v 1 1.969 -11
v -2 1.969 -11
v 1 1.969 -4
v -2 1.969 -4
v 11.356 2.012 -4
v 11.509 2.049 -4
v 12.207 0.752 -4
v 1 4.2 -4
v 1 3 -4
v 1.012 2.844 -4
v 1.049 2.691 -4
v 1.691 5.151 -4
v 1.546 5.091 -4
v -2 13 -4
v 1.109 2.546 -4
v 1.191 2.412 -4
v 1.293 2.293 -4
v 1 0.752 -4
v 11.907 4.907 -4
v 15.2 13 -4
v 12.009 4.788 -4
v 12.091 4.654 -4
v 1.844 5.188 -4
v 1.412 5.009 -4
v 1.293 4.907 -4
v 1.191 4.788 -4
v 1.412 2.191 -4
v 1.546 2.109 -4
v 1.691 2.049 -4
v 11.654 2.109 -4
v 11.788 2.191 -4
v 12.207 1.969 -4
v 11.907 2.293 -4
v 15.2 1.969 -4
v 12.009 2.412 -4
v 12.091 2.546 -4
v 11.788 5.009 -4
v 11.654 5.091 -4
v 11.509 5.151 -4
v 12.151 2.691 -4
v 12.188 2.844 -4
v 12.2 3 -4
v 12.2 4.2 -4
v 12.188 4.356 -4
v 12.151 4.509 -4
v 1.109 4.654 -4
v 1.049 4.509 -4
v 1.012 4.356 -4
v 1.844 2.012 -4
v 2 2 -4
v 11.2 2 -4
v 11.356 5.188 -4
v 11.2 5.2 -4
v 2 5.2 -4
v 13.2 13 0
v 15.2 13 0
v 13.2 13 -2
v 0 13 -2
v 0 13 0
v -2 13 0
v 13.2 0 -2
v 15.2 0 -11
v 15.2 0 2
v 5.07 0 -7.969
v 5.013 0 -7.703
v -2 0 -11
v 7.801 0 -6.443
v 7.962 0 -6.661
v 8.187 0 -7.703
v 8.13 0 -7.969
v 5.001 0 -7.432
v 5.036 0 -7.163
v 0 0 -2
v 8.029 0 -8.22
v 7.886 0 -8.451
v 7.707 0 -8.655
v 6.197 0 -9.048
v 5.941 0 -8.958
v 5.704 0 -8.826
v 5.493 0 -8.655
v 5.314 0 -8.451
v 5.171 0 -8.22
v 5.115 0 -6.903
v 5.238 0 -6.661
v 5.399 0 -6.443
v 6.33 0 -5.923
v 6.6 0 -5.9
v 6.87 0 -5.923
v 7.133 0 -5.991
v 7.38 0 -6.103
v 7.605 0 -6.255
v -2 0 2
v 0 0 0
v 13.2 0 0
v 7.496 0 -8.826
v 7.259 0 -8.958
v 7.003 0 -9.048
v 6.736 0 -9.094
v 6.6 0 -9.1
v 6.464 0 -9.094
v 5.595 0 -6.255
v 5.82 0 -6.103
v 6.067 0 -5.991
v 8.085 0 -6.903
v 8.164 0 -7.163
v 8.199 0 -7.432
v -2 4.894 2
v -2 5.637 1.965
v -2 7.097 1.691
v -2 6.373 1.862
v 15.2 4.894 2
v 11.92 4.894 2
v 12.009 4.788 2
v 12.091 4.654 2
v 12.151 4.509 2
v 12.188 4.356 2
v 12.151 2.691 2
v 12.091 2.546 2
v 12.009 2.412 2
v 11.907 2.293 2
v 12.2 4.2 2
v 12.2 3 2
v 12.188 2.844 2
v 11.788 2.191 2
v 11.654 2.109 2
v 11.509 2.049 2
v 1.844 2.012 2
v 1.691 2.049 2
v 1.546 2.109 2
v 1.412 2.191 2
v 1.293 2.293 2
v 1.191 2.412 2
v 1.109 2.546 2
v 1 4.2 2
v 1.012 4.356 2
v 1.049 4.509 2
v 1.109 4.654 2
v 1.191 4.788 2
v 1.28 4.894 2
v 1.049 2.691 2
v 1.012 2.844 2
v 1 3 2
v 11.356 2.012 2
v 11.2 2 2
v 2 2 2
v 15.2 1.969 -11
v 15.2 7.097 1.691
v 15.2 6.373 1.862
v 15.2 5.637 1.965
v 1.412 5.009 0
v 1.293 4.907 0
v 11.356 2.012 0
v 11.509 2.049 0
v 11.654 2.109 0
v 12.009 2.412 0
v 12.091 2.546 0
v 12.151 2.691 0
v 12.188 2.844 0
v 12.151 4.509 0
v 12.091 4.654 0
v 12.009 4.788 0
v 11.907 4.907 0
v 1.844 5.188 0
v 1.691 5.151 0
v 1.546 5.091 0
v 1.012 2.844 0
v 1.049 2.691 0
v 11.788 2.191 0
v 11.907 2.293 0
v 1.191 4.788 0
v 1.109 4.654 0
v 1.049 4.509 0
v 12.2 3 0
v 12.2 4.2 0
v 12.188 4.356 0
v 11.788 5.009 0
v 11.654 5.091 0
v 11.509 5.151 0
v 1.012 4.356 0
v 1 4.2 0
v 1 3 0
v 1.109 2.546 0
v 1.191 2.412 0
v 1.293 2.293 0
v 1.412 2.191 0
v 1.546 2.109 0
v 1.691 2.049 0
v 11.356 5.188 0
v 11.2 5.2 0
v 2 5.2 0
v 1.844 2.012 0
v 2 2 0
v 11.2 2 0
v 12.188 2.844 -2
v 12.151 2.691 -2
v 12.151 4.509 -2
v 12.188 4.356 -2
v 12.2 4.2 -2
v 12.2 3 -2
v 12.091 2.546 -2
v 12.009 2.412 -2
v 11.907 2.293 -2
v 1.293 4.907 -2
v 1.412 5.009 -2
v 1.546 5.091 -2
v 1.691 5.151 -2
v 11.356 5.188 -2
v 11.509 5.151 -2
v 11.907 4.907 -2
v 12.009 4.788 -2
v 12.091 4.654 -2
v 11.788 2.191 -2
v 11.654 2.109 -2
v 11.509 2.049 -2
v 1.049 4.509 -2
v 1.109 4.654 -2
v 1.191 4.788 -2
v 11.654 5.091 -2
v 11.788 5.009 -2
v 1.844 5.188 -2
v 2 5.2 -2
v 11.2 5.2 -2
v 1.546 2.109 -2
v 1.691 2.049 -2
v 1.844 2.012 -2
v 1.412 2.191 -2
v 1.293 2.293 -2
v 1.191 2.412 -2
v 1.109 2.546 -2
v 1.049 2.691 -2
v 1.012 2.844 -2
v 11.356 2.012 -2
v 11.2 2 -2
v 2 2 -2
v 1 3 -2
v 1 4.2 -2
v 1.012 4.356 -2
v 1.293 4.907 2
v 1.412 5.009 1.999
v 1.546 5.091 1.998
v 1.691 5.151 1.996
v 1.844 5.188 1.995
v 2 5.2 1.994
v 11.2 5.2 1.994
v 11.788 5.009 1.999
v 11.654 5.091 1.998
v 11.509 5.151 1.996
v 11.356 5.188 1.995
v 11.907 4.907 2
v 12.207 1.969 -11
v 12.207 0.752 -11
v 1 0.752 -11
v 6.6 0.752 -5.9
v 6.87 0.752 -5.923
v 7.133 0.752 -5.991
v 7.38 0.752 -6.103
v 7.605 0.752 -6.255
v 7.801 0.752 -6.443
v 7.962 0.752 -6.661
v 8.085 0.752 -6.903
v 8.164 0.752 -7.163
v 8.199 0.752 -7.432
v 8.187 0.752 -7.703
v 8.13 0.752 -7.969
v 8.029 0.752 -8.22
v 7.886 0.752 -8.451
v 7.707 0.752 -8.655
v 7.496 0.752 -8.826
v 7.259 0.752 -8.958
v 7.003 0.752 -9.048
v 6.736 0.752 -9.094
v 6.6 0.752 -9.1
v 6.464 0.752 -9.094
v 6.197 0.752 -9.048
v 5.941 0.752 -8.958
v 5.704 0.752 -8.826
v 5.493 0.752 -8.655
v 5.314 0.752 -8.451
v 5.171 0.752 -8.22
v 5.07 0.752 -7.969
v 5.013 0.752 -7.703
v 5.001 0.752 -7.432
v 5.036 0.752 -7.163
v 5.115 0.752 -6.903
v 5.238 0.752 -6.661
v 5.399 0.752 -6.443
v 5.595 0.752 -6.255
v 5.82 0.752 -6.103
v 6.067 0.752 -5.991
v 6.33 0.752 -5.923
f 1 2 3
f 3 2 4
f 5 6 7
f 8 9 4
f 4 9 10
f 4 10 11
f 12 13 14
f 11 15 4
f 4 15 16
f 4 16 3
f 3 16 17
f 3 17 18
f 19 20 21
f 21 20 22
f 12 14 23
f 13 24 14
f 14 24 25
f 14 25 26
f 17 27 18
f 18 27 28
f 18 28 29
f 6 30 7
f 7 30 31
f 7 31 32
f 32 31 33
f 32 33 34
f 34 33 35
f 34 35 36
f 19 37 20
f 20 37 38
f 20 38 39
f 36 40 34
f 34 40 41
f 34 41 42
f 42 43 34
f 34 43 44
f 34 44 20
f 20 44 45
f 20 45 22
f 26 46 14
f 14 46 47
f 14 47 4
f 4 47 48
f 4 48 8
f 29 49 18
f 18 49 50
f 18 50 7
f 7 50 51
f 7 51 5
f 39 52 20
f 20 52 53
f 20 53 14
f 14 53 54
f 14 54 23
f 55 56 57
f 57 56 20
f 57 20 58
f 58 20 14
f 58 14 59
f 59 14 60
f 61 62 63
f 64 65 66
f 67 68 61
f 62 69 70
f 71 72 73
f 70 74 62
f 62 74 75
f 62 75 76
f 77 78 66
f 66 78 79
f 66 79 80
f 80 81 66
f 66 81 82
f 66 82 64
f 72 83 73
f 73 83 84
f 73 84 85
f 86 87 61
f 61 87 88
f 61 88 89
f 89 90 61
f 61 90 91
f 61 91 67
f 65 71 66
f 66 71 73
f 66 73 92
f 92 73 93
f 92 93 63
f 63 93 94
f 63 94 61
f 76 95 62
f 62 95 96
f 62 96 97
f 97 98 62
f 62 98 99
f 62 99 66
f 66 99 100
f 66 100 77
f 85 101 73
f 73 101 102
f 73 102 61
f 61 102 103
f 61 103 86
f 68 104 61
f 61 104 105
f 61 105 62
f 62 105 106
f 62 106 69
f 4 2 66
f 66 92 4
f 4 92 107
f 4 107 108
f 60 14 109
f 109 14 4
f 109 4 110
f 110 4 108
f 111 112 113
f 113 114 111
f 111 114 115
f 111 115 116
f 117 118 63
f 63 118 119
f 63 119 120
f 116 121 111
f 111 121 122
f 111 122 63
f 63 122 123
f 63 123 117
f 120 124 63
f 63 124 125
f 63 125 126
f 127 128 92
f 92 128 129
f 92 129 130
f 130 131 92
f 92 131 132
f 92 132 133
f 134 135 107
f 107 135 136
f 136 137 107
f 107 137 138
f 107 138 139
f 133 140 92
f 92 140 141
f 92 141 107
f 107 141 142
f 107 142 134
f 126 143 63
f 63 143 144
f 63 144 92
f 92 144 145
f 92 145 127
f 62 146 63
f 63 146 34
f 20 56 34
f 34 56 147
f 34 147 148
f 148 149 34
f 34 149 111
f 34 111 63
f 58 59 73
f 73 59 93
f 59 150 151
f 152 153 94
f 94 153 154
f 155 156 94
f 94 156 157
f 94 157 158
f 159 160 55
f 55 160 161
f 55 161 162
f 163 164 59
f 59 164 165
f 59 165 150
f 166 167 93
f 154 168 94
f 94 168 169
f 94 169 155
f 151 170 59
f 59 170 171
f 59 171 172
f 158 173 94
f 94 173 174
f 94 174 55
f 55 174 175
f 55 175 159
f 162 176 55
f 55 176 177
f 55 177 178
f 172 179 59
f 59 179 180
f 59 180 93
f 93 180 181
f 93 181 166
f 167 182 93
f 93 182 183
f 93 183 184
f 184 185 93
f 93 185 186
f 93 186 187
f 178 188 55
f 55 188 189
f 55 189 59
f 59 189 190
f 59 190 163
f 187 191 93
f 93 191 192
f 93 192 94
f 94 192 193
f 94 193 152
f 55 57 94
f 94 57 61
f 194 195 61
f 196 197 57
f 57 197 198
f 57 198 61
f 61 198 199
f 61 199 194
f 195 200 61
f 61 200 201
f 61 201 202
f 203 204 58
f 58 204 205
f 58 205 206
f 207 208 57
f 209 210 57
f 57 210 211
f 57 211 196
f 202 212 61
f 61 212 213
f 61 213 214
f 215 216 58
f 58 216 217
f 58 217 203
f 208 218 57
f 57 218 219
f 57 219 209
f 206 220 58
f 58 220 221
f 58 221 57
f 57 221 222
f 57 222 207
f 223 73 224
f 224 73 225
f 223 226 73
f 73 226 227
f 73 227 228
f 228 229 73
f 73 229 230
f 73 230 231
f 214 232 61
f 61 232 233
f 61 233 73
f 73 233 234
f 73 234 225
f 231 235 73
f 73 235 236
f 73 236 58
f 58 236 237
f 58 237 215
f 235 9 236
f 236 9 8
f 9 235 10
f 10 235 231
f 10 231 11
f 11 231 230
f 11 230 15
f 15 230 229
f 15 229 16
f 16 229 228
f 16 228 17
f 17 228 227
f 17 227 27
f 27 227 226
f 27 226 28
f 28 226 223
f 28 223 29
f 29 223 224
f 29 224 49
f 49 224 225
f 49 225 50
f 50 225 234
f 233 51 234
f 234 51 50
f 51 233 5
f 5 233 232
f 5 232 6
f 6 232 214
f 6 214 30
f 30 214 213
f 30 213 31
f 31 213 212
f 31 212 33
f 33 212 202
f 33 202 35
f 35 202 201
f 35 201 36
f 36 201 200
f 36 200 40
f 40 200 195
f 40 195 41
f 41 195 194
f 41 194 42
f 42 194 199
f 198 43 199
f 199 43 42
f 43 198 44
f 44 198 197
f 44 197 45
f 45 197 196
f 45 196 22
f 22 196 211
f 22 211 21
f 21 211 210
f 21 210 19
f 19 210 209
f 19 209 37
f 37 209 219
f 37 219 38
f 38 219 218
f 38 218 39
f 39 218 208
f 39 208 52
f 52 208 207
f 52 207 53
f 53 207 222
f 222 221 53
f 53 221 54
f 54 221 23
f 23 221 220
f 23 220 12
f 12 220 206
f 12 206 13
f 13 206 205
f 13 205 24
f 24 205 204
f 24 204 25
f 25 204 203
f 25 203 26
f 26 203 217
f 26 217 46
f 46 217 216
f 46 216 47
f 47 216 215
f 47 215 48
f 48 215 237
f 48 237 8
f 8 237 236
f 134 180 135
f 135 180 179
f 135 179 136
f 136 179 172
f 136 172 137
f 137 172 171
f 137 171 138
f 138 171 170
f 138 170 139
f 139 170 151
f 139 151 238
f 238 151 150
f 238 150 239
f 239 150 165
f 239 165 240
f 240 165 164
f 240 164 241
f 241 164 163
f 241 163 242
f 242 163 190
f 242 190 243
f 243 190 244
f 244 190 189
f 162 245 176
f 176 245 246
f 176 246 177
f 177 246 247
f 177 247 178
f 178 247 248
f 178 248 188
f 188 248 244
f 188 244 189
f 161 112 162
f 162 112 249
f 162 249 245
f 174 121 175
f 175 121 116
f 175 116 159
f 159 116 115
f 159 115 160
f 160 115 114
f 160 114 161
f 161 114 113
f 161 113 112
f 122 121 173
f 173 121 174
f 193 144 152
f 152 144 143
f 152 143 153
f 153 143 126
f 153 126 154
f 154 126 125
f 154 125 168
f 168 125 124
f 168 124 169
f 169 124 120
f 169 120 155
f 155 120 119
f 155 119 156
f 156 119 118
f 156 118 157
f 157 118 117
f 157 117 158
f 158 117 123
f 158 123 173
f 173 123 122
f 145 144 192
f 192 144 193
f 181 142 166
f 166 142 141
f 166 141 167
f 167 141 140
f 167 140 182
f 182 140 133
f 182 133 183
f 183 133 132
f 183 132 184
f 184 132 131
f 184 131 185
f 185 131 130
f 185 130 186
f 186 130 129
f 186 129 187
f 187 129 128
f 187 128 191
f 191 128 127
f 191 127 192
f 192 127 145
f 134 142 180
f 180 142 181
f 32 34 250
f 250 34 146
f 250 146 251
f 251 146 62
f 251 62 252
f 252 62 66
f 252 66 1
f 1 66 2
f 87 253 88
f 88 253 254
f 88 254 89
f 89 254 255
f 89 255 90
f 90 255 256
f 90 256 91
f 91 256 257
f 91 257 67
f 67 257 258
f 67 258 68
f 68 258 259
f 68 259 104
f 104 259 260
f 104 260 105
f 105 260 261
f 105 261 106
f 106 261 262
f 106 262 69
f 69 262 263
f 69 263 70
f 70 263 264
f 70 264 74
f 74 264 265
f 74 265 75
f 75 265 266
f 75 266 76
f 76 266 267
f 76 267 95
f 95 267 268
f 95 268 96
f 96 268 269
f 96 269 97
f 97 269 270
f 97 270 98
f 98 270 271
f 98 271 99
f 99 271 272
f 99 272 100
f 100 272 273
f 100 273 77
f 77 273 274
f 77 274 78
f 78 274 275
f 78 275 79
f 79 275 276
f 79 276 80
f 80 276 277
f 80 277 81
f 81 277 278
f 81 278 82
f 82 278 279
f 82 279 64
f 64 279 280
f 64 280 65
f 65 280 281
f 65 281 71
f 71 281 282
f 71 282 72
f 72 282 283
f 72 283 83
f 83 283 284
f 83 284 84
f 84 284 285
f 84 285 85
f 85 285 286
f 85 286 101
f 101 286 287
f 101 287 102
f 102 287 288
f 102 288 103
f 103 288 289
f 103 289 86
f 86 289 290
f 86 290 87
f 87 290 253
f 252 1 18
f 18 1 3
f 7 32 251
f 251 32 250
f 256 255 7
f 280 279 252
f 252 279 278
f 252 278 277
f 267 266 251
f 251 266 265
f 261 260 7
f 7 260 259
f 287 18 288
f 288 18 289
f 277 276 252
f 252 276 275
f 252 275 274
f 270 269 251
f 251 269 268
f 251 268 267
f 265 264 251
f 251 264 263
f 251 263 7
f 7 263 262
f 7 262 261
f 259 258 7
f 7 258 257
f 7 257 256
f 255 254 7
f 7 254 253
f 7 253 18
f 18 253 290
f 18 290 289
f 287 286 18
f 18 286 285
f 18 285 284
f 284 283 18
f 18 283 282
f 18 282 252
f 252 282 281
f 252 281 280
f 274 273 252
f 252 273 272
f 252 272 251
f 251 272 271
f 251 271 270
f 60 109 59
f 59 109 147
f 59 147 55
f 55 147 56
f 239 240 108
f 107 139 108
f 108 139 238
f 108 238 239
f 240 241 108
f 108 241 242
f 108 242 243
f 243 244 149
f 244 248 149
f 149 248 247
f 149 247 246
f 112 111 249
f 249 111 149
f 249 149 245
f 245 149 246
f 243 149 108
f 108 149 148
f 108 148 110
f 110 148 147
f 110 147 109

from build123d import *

# Parameters (mm, degrees)
SKETCH1_W           = 17.2
SKETCH1_H           = 6
SKETCH1_W_2         = 13.2
SKETCH1_H_2         = 2
BOSS_EXTRUDE1_DEPTH = 13
CUT_EXTRUDE1_DEPTH  = 13
SKETCH4_W           = 17.2
SKETCH4_H           = 1.968955047
BOSS_EXTRUDE2_DEPTH = 7
SKETCH5_R           = 1.6
CUT_EXTRUDE2_DEPTH  = 4
CUT_EXTRUDE3_START  = -7
SKETCH6_W           = 11.206506984
SKETCH6_H           = 2.48590404
CUT_EXTRUDE3_DEPTH  = 7
CUT_EXTRUDE4_START  = -17.2
CUT_EXTRUDE4_DEPTH  = 17.2
FILLET1_R           = 8


with BuildPart() as part:
    # Sketch1 → Boss-Extrude1 (new body)
    with BuildSketch(Plane(origin=(0, 0, 0), x_dir=(1, 0, 0), z_dir=(0, 1, 0))):
        with Locations((6.6, 1)):
            Rectangle(SKETCH1_W, SKETCH1_H)
        with Locations((6.6, 1)):
            Rectangle(SKETCH1_W_2, SKETCH1_H_2, mode=Mode.SUBTRACT)
    extrude(amount=BOSS_EXTRUDE1_DEPTH)

    # Sketch2 → Cut-Extrude1 (cut)
    with BuildSketch(Plane.XY.offset(2)):
        with BuildLine():
            Line((2, 5.2), (11.2, 5.2))
            ThreePointArc((11.2, 5.2), (11.907106781, 4.907106781), (12.2, 4.2))
            Line((12.2, 4.2), (12.2, 3))
            ThreePointArc((12.2, 3), (11.907106781, 2.292893219), (11.2, 2))
            Line((11.2, 2), (2, 2))
            ThreePointArc((2, 2), (1.292893219, 2.292893219), (1, 3))
            Line((1, 3), (1, 4.2))
            ThreePointArc((1, 4.2), (1.292893219, 4.907106781), (2, 5.2))
        make_face()
    extrude(amount=-CUT_EXTRUDE1_DEPTH, mode=Mode.SUBTRACT)

    # Sketch4 → Boss-Extrude2 (add)
    with BuildSketch(Plane(origin=(0, 0, -4), x_dir=(-1, 0, 0), z_dir=(0, 0, -1))):
        with Locations((-6.6, 0.984477524)):
            Rectangle(SKETCH4_W, SKETCH4_H)
    extrude(amount=BOSS_EXTRUDE2_DEPTH)

    # Sketch5 → Cut-Extrude2 (cut)
    with BuildSketch(Plane(origin=(0, 1.968955047, 0), x_dir=(1, 0, 0), z_dir=(0, 1, 0))):
        with Locations(Location((6.6, 7.5, 0), (0, 0, 270))):
            Circle(SKETCH5_R)
    extrude(amount=-CUT_EXTRUDE2_DEPTH, mode=Mode.SUBTRACT)

    # Sketch6 → Cut-Extrude3 (cut)
    with BuildSketch(Plane(origin=(0, 0, -11), x_dir=(-1, 0, 0), z_dir=(0, 0, -1)).offset(CUT_EXTRUDE3_START)):
        with Locations((-6.603253492, 1.995400835)):
            Rectangle(SKETCH6_W, SKETCH6_H)
    extrude(amount=CUT_EXTRUDE3_DEPTH, mode=Mode.SUBTRACT)

    # Sketch7 → Cut-Extrude4 (cut)
    with BuildSketch(Plane(origin=(15.2, 0, 0), x_dir=(0, 0, -1), z_dir=(1, 0, 0)).offset(CUT_EXTRUDE4_START)):
        Polygon((0, 13), (-2, 6.017150325), (-2, 13), align=None)
    extrude(amount=CUT_EXTRUDE4_DEPTH, mode=Mode.SUBTRACT)

    # Fillet1
    # the kernel refuses this fillet: 8 mm, written as the material it takes off along each edge
    with BuildSketch(Plane(origin=(-4.807712941, 6.017150325, 2), x_dir=(0, -1, 0), z_dir=(1, 0, 0))) as fillet1_piece_1:
        with BuildLine():
            CenterArc((FILLET1_R * 0.140385647075, FILLET1_R), FILLET1_R, 254.01743912, 15.98256088)
            Line((-FILLET1_R * 0.134959116702, FILLET1_R * 0.0386544528314), (0, 0))
            Line((0, 0), (FILLET1_R * 0.140385647075, 0))
        make_face()
    extrude(amount=22.815425883, mode=Mode.SUBTRACT)


solid = part.part
